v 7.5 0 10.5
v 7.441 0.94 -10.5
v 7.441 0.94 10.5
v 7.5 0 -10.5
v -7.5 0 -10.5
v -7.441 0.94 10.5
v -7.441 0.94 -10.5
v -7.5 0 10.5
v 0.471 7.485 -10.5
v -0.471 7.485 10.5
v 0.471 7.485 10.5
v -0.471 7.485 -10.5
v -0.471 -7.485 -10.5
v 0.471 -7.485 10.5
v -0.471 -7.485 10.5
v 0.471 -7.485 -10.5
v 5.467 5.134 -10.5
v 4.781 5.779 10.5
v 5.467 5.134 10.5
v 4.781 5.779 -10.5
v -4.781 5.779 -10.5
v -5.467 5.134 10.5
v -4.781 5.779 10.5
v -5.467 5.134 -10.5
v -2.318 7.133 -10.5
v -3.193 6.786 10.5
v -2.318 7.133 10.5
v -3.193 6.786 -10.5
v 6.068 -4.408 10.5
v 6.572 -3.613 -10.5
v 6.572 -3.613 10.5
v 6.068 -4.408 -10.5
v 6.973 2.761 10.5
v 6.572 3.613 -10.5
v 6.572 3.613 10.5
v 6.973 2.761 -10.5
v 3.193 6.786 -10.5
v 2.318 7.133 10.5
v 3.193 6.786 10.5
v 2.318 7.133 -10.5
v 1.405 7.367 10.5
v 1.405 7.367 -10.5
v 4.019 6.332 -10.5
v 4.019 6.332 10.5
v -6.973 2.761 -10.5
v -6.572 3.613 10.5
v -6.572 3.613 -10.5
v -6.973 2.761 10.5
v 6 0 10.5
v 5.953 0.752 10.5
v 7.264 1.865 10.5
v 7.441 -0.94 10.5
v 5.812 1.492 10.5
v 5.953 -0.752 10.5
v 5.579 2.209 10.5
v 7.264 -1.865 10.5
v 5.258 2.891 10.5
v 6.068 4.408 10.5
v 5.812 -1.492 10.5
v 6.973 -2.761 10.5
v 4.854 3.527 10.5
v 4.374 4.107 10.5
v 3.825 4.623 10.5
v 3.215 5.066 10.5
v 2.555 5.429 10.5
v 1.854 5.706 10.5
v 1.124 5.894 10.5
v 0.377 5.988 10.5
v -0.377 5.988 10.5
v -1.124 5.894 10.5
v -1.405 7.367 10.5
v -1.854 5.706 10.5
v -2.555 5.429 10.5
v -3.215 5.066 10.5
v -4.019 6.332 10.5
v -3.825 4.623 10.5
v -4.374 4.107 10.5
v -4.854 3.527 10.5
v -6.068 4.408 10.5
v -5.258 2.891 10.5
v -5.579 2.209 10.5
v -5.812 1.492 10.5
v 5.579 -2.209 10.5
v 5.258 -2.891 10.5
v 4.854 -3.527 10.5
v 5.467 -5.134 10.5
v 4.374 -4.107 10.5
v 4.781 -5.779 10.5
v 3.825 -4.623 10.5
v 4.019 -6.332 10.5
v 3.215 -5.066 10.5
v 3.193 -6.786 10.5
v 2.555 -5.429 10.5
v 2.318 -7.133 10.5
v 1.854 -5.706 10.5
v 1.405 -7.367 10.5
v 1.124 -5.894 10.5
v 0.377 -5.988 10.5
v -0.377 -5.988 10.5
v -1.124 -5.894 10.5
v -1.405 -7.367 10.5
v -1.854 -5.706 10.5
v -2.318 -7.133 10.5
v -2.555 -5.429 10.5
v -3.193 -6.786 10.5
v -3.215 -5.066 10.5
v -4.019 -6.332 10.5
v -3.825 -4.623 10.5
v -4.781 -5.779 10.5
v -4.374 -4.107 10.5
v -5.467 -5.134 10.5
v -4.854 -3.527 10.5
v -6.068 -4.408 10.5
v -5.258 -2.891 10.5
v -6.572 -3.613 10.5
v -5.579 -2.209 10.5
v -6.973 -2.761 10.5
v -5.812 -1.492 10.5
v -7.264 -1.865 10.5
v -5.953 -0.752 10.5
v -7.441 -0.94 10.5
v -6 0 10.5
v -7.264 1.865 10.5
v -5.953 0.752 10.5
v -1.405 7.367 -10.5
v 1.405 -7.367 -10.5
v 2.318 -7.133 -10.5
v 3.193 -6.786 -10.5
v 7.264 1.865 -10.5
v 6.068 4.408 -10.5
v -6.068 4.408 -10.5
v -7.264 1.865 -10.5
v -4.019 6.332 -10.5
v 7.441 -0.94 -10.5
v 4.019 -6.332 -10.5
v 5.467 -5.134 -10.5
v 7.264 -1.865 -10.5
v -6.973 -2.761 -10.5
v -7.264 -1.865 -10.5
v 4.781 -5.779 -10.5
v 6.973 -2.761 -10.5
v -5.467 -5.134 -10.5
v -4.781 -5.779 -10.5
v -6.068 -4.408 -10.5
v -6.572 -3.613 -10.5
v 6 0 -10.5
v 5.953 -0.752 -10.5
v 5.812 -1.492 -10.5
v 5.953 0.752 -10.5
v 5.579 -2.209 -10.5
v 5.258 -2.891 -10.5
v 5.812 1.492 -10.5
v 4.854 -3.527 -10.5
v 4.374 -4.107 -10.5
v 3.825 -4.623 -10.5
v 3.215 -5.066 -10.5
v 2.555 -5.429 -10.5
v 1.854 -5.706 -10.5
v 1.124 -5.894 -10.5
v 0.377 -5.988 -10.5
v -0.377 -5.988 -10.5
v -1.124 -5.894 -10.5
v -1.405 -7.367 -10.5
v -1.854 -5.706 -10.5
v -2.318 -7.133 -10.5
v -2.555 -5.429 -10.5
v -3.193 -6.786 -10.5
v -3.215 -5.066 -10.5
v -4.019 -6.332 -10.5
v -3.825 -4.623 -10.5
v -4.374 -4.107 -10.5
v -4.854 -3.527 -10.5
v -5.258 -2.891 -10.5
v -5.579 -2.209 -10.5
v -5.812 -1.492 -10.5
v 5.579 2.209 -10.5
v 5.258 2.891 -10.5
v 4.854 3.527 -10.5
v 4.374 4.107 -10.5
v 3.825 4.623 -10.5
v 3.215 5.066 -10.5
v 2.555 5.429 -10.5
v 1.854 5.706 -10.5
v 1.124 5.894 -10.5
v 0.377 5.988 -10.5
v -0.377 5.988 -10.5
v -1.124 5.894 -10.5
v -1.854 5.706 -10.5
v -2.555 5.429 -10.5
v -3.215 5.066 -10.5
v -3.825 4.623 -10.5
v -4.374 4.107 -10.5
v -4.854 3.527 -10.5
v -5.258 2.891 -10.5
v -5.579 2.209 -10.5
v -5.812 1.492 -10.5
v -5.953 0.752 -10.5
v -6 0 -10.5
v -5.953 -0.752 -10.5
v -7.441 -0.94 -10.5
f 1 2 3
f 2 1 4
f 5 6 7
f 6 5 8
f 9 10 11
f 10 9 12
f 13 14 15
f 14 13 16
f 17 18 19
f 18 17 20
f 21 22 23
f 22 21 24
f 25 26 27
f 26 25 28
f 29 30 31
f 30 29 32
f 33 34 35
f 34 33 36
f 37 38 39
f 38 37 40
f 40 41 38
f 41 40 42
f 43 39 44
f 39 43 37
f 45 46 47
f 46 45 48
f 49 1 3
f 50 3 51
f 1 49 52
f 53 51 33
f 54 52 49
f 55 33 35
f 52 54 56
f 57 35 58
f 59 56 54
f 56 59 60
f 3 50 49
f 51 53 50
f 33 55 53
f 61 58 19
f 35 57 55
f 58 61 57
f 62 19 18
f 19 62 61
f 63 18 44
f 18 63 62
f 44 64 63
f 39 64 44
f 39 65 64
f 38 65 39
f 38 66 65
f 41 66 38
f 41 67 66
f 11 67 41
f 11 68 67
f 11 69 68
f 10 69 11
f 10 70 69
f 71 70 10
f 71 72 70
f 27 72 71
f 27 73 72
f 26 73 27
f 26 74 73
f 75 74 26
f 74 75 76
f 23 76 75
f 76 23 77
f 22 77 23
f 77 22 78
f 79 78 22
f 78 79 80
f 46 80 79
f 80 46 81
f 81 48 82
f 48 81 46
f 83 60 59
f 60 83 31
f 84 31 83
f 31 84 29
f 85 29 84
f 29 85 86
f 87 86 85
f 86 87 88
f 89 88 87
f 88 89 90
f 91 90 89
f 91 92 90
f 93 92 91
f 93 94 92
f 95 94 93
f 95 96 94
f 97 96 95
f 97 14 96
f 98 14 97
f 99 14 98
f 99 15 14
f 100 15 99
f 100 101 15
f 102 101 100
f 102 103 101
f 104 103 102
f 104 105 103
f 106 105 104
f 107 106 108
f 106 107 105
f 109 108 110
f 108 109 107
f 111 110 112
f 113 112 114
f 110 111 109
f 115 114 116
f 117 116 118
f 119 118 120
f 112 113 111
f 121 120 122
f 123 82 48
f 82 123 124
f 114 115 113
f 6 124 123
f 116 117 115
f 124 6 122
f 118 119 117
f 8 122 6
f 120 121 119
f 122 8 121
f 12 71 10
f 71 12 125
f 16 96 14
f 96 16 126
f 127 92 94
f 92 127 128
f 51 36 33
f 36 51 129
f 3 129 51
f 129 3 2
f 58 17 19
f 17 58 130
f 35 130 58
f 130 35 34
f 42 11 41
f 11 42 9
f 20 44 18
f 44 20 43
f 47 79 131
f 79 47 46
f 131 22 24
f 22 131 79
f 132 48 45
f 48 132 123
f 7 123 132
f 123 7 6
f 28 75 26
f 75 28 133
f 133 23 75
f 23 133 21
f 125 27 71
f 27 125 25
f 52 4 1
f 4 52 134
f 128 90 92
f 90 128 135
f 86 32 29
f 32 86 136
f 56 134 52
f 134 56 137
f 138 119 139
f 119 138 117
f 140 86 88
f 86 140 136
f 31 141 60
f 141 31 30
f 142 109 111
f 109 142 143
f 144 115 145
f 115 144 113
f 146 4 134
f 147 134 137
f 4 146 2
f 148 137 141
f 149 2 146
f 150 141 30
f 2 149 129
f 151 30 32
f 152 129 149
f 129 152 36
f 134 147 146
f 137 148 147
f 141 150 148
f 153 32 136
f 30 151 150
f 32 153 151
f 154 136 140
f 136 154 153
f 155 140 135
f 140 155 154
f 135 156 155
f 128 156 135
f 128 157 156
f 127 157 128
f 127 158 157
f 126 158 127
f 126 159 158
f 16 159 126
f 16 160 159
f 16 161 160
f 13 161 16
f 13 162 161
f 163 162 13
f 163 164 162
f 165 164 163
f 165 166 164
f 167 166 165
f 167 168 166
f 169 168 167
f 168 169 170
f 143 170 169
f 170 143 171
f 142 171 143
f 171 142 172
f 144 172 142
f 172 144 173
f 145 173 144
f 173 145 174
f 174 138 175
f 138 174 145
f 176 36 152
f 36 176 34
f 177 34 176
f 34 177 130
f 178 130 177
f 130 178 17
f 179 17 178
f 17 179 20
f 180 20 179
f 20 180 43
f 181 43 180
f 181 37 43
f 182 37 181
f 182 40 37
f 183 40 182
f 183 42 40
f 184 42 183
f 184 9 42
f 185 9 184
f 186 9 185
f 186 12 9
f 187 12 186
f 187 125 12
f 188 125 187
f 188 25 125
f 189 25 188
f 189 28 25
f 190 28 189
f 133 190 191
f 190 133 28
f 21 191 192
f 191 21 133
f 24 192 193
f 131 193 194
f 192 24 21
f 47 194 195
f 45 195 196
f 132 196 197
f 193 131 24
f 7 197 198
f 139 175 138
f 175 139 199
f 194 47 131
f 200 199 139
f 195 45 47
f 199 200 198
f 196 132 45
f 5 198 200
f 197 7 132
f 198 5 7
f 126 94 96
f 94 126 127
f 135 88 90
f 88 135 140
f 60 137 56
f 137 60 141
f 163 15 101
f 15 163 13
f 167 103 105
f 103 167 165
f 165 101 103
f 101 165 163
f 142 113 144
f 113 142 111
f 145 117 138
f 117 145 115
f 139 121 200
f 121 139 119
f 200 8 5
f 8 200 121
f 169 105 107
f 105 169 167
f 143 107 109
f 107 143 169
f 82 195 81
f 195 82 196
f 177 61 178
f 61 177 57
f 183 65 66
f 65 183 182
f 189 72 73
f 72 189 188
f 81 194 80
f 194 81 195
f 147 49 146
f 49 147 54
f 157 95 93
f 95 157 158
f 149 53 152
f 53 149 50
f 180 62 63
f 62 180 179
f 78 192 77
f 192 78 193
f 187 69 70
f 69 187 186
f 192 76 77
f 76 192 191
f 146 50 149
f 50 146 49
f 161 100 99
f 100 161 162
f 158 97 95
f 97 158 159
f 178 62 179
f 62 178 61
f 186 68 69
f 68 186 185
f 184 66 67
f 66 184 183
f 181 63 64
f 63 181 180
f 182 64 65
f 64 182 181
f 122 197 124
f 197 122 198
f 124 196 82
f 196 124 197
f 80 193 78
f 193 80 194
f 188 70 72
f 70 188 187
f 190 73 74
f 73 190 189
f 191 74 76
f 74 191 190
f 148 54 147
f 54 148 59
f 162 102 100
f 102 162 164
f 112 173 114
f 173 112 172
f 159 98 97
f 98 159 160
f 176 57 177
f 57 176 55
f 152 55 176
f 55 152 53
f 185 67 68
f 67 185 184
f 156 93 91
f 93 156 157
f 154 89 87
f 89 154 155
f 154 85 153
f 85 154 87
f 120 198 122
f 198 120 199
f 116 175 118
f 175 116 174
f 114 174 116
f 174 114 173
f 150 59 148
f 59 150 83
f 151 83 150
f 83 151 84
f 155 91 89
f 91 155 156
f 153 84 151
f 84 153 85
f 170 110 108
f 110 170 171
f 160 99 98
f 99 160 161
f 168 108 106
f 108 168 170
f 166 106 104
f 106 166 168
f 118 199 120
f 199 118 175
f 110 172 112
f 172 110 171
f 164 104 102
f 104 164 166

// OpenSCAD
$fn = 50;


difference() {
	union() {
		translate(v = [0, 0, -10.5000000000]) {
			cylinder(h = 21, r = 7.5000000000);
		}
	}
	union() {
		translate(v = [0, 0, -100.0000000000]) {
			cylinder(h = 200, r = 6);
		}
	}
}
